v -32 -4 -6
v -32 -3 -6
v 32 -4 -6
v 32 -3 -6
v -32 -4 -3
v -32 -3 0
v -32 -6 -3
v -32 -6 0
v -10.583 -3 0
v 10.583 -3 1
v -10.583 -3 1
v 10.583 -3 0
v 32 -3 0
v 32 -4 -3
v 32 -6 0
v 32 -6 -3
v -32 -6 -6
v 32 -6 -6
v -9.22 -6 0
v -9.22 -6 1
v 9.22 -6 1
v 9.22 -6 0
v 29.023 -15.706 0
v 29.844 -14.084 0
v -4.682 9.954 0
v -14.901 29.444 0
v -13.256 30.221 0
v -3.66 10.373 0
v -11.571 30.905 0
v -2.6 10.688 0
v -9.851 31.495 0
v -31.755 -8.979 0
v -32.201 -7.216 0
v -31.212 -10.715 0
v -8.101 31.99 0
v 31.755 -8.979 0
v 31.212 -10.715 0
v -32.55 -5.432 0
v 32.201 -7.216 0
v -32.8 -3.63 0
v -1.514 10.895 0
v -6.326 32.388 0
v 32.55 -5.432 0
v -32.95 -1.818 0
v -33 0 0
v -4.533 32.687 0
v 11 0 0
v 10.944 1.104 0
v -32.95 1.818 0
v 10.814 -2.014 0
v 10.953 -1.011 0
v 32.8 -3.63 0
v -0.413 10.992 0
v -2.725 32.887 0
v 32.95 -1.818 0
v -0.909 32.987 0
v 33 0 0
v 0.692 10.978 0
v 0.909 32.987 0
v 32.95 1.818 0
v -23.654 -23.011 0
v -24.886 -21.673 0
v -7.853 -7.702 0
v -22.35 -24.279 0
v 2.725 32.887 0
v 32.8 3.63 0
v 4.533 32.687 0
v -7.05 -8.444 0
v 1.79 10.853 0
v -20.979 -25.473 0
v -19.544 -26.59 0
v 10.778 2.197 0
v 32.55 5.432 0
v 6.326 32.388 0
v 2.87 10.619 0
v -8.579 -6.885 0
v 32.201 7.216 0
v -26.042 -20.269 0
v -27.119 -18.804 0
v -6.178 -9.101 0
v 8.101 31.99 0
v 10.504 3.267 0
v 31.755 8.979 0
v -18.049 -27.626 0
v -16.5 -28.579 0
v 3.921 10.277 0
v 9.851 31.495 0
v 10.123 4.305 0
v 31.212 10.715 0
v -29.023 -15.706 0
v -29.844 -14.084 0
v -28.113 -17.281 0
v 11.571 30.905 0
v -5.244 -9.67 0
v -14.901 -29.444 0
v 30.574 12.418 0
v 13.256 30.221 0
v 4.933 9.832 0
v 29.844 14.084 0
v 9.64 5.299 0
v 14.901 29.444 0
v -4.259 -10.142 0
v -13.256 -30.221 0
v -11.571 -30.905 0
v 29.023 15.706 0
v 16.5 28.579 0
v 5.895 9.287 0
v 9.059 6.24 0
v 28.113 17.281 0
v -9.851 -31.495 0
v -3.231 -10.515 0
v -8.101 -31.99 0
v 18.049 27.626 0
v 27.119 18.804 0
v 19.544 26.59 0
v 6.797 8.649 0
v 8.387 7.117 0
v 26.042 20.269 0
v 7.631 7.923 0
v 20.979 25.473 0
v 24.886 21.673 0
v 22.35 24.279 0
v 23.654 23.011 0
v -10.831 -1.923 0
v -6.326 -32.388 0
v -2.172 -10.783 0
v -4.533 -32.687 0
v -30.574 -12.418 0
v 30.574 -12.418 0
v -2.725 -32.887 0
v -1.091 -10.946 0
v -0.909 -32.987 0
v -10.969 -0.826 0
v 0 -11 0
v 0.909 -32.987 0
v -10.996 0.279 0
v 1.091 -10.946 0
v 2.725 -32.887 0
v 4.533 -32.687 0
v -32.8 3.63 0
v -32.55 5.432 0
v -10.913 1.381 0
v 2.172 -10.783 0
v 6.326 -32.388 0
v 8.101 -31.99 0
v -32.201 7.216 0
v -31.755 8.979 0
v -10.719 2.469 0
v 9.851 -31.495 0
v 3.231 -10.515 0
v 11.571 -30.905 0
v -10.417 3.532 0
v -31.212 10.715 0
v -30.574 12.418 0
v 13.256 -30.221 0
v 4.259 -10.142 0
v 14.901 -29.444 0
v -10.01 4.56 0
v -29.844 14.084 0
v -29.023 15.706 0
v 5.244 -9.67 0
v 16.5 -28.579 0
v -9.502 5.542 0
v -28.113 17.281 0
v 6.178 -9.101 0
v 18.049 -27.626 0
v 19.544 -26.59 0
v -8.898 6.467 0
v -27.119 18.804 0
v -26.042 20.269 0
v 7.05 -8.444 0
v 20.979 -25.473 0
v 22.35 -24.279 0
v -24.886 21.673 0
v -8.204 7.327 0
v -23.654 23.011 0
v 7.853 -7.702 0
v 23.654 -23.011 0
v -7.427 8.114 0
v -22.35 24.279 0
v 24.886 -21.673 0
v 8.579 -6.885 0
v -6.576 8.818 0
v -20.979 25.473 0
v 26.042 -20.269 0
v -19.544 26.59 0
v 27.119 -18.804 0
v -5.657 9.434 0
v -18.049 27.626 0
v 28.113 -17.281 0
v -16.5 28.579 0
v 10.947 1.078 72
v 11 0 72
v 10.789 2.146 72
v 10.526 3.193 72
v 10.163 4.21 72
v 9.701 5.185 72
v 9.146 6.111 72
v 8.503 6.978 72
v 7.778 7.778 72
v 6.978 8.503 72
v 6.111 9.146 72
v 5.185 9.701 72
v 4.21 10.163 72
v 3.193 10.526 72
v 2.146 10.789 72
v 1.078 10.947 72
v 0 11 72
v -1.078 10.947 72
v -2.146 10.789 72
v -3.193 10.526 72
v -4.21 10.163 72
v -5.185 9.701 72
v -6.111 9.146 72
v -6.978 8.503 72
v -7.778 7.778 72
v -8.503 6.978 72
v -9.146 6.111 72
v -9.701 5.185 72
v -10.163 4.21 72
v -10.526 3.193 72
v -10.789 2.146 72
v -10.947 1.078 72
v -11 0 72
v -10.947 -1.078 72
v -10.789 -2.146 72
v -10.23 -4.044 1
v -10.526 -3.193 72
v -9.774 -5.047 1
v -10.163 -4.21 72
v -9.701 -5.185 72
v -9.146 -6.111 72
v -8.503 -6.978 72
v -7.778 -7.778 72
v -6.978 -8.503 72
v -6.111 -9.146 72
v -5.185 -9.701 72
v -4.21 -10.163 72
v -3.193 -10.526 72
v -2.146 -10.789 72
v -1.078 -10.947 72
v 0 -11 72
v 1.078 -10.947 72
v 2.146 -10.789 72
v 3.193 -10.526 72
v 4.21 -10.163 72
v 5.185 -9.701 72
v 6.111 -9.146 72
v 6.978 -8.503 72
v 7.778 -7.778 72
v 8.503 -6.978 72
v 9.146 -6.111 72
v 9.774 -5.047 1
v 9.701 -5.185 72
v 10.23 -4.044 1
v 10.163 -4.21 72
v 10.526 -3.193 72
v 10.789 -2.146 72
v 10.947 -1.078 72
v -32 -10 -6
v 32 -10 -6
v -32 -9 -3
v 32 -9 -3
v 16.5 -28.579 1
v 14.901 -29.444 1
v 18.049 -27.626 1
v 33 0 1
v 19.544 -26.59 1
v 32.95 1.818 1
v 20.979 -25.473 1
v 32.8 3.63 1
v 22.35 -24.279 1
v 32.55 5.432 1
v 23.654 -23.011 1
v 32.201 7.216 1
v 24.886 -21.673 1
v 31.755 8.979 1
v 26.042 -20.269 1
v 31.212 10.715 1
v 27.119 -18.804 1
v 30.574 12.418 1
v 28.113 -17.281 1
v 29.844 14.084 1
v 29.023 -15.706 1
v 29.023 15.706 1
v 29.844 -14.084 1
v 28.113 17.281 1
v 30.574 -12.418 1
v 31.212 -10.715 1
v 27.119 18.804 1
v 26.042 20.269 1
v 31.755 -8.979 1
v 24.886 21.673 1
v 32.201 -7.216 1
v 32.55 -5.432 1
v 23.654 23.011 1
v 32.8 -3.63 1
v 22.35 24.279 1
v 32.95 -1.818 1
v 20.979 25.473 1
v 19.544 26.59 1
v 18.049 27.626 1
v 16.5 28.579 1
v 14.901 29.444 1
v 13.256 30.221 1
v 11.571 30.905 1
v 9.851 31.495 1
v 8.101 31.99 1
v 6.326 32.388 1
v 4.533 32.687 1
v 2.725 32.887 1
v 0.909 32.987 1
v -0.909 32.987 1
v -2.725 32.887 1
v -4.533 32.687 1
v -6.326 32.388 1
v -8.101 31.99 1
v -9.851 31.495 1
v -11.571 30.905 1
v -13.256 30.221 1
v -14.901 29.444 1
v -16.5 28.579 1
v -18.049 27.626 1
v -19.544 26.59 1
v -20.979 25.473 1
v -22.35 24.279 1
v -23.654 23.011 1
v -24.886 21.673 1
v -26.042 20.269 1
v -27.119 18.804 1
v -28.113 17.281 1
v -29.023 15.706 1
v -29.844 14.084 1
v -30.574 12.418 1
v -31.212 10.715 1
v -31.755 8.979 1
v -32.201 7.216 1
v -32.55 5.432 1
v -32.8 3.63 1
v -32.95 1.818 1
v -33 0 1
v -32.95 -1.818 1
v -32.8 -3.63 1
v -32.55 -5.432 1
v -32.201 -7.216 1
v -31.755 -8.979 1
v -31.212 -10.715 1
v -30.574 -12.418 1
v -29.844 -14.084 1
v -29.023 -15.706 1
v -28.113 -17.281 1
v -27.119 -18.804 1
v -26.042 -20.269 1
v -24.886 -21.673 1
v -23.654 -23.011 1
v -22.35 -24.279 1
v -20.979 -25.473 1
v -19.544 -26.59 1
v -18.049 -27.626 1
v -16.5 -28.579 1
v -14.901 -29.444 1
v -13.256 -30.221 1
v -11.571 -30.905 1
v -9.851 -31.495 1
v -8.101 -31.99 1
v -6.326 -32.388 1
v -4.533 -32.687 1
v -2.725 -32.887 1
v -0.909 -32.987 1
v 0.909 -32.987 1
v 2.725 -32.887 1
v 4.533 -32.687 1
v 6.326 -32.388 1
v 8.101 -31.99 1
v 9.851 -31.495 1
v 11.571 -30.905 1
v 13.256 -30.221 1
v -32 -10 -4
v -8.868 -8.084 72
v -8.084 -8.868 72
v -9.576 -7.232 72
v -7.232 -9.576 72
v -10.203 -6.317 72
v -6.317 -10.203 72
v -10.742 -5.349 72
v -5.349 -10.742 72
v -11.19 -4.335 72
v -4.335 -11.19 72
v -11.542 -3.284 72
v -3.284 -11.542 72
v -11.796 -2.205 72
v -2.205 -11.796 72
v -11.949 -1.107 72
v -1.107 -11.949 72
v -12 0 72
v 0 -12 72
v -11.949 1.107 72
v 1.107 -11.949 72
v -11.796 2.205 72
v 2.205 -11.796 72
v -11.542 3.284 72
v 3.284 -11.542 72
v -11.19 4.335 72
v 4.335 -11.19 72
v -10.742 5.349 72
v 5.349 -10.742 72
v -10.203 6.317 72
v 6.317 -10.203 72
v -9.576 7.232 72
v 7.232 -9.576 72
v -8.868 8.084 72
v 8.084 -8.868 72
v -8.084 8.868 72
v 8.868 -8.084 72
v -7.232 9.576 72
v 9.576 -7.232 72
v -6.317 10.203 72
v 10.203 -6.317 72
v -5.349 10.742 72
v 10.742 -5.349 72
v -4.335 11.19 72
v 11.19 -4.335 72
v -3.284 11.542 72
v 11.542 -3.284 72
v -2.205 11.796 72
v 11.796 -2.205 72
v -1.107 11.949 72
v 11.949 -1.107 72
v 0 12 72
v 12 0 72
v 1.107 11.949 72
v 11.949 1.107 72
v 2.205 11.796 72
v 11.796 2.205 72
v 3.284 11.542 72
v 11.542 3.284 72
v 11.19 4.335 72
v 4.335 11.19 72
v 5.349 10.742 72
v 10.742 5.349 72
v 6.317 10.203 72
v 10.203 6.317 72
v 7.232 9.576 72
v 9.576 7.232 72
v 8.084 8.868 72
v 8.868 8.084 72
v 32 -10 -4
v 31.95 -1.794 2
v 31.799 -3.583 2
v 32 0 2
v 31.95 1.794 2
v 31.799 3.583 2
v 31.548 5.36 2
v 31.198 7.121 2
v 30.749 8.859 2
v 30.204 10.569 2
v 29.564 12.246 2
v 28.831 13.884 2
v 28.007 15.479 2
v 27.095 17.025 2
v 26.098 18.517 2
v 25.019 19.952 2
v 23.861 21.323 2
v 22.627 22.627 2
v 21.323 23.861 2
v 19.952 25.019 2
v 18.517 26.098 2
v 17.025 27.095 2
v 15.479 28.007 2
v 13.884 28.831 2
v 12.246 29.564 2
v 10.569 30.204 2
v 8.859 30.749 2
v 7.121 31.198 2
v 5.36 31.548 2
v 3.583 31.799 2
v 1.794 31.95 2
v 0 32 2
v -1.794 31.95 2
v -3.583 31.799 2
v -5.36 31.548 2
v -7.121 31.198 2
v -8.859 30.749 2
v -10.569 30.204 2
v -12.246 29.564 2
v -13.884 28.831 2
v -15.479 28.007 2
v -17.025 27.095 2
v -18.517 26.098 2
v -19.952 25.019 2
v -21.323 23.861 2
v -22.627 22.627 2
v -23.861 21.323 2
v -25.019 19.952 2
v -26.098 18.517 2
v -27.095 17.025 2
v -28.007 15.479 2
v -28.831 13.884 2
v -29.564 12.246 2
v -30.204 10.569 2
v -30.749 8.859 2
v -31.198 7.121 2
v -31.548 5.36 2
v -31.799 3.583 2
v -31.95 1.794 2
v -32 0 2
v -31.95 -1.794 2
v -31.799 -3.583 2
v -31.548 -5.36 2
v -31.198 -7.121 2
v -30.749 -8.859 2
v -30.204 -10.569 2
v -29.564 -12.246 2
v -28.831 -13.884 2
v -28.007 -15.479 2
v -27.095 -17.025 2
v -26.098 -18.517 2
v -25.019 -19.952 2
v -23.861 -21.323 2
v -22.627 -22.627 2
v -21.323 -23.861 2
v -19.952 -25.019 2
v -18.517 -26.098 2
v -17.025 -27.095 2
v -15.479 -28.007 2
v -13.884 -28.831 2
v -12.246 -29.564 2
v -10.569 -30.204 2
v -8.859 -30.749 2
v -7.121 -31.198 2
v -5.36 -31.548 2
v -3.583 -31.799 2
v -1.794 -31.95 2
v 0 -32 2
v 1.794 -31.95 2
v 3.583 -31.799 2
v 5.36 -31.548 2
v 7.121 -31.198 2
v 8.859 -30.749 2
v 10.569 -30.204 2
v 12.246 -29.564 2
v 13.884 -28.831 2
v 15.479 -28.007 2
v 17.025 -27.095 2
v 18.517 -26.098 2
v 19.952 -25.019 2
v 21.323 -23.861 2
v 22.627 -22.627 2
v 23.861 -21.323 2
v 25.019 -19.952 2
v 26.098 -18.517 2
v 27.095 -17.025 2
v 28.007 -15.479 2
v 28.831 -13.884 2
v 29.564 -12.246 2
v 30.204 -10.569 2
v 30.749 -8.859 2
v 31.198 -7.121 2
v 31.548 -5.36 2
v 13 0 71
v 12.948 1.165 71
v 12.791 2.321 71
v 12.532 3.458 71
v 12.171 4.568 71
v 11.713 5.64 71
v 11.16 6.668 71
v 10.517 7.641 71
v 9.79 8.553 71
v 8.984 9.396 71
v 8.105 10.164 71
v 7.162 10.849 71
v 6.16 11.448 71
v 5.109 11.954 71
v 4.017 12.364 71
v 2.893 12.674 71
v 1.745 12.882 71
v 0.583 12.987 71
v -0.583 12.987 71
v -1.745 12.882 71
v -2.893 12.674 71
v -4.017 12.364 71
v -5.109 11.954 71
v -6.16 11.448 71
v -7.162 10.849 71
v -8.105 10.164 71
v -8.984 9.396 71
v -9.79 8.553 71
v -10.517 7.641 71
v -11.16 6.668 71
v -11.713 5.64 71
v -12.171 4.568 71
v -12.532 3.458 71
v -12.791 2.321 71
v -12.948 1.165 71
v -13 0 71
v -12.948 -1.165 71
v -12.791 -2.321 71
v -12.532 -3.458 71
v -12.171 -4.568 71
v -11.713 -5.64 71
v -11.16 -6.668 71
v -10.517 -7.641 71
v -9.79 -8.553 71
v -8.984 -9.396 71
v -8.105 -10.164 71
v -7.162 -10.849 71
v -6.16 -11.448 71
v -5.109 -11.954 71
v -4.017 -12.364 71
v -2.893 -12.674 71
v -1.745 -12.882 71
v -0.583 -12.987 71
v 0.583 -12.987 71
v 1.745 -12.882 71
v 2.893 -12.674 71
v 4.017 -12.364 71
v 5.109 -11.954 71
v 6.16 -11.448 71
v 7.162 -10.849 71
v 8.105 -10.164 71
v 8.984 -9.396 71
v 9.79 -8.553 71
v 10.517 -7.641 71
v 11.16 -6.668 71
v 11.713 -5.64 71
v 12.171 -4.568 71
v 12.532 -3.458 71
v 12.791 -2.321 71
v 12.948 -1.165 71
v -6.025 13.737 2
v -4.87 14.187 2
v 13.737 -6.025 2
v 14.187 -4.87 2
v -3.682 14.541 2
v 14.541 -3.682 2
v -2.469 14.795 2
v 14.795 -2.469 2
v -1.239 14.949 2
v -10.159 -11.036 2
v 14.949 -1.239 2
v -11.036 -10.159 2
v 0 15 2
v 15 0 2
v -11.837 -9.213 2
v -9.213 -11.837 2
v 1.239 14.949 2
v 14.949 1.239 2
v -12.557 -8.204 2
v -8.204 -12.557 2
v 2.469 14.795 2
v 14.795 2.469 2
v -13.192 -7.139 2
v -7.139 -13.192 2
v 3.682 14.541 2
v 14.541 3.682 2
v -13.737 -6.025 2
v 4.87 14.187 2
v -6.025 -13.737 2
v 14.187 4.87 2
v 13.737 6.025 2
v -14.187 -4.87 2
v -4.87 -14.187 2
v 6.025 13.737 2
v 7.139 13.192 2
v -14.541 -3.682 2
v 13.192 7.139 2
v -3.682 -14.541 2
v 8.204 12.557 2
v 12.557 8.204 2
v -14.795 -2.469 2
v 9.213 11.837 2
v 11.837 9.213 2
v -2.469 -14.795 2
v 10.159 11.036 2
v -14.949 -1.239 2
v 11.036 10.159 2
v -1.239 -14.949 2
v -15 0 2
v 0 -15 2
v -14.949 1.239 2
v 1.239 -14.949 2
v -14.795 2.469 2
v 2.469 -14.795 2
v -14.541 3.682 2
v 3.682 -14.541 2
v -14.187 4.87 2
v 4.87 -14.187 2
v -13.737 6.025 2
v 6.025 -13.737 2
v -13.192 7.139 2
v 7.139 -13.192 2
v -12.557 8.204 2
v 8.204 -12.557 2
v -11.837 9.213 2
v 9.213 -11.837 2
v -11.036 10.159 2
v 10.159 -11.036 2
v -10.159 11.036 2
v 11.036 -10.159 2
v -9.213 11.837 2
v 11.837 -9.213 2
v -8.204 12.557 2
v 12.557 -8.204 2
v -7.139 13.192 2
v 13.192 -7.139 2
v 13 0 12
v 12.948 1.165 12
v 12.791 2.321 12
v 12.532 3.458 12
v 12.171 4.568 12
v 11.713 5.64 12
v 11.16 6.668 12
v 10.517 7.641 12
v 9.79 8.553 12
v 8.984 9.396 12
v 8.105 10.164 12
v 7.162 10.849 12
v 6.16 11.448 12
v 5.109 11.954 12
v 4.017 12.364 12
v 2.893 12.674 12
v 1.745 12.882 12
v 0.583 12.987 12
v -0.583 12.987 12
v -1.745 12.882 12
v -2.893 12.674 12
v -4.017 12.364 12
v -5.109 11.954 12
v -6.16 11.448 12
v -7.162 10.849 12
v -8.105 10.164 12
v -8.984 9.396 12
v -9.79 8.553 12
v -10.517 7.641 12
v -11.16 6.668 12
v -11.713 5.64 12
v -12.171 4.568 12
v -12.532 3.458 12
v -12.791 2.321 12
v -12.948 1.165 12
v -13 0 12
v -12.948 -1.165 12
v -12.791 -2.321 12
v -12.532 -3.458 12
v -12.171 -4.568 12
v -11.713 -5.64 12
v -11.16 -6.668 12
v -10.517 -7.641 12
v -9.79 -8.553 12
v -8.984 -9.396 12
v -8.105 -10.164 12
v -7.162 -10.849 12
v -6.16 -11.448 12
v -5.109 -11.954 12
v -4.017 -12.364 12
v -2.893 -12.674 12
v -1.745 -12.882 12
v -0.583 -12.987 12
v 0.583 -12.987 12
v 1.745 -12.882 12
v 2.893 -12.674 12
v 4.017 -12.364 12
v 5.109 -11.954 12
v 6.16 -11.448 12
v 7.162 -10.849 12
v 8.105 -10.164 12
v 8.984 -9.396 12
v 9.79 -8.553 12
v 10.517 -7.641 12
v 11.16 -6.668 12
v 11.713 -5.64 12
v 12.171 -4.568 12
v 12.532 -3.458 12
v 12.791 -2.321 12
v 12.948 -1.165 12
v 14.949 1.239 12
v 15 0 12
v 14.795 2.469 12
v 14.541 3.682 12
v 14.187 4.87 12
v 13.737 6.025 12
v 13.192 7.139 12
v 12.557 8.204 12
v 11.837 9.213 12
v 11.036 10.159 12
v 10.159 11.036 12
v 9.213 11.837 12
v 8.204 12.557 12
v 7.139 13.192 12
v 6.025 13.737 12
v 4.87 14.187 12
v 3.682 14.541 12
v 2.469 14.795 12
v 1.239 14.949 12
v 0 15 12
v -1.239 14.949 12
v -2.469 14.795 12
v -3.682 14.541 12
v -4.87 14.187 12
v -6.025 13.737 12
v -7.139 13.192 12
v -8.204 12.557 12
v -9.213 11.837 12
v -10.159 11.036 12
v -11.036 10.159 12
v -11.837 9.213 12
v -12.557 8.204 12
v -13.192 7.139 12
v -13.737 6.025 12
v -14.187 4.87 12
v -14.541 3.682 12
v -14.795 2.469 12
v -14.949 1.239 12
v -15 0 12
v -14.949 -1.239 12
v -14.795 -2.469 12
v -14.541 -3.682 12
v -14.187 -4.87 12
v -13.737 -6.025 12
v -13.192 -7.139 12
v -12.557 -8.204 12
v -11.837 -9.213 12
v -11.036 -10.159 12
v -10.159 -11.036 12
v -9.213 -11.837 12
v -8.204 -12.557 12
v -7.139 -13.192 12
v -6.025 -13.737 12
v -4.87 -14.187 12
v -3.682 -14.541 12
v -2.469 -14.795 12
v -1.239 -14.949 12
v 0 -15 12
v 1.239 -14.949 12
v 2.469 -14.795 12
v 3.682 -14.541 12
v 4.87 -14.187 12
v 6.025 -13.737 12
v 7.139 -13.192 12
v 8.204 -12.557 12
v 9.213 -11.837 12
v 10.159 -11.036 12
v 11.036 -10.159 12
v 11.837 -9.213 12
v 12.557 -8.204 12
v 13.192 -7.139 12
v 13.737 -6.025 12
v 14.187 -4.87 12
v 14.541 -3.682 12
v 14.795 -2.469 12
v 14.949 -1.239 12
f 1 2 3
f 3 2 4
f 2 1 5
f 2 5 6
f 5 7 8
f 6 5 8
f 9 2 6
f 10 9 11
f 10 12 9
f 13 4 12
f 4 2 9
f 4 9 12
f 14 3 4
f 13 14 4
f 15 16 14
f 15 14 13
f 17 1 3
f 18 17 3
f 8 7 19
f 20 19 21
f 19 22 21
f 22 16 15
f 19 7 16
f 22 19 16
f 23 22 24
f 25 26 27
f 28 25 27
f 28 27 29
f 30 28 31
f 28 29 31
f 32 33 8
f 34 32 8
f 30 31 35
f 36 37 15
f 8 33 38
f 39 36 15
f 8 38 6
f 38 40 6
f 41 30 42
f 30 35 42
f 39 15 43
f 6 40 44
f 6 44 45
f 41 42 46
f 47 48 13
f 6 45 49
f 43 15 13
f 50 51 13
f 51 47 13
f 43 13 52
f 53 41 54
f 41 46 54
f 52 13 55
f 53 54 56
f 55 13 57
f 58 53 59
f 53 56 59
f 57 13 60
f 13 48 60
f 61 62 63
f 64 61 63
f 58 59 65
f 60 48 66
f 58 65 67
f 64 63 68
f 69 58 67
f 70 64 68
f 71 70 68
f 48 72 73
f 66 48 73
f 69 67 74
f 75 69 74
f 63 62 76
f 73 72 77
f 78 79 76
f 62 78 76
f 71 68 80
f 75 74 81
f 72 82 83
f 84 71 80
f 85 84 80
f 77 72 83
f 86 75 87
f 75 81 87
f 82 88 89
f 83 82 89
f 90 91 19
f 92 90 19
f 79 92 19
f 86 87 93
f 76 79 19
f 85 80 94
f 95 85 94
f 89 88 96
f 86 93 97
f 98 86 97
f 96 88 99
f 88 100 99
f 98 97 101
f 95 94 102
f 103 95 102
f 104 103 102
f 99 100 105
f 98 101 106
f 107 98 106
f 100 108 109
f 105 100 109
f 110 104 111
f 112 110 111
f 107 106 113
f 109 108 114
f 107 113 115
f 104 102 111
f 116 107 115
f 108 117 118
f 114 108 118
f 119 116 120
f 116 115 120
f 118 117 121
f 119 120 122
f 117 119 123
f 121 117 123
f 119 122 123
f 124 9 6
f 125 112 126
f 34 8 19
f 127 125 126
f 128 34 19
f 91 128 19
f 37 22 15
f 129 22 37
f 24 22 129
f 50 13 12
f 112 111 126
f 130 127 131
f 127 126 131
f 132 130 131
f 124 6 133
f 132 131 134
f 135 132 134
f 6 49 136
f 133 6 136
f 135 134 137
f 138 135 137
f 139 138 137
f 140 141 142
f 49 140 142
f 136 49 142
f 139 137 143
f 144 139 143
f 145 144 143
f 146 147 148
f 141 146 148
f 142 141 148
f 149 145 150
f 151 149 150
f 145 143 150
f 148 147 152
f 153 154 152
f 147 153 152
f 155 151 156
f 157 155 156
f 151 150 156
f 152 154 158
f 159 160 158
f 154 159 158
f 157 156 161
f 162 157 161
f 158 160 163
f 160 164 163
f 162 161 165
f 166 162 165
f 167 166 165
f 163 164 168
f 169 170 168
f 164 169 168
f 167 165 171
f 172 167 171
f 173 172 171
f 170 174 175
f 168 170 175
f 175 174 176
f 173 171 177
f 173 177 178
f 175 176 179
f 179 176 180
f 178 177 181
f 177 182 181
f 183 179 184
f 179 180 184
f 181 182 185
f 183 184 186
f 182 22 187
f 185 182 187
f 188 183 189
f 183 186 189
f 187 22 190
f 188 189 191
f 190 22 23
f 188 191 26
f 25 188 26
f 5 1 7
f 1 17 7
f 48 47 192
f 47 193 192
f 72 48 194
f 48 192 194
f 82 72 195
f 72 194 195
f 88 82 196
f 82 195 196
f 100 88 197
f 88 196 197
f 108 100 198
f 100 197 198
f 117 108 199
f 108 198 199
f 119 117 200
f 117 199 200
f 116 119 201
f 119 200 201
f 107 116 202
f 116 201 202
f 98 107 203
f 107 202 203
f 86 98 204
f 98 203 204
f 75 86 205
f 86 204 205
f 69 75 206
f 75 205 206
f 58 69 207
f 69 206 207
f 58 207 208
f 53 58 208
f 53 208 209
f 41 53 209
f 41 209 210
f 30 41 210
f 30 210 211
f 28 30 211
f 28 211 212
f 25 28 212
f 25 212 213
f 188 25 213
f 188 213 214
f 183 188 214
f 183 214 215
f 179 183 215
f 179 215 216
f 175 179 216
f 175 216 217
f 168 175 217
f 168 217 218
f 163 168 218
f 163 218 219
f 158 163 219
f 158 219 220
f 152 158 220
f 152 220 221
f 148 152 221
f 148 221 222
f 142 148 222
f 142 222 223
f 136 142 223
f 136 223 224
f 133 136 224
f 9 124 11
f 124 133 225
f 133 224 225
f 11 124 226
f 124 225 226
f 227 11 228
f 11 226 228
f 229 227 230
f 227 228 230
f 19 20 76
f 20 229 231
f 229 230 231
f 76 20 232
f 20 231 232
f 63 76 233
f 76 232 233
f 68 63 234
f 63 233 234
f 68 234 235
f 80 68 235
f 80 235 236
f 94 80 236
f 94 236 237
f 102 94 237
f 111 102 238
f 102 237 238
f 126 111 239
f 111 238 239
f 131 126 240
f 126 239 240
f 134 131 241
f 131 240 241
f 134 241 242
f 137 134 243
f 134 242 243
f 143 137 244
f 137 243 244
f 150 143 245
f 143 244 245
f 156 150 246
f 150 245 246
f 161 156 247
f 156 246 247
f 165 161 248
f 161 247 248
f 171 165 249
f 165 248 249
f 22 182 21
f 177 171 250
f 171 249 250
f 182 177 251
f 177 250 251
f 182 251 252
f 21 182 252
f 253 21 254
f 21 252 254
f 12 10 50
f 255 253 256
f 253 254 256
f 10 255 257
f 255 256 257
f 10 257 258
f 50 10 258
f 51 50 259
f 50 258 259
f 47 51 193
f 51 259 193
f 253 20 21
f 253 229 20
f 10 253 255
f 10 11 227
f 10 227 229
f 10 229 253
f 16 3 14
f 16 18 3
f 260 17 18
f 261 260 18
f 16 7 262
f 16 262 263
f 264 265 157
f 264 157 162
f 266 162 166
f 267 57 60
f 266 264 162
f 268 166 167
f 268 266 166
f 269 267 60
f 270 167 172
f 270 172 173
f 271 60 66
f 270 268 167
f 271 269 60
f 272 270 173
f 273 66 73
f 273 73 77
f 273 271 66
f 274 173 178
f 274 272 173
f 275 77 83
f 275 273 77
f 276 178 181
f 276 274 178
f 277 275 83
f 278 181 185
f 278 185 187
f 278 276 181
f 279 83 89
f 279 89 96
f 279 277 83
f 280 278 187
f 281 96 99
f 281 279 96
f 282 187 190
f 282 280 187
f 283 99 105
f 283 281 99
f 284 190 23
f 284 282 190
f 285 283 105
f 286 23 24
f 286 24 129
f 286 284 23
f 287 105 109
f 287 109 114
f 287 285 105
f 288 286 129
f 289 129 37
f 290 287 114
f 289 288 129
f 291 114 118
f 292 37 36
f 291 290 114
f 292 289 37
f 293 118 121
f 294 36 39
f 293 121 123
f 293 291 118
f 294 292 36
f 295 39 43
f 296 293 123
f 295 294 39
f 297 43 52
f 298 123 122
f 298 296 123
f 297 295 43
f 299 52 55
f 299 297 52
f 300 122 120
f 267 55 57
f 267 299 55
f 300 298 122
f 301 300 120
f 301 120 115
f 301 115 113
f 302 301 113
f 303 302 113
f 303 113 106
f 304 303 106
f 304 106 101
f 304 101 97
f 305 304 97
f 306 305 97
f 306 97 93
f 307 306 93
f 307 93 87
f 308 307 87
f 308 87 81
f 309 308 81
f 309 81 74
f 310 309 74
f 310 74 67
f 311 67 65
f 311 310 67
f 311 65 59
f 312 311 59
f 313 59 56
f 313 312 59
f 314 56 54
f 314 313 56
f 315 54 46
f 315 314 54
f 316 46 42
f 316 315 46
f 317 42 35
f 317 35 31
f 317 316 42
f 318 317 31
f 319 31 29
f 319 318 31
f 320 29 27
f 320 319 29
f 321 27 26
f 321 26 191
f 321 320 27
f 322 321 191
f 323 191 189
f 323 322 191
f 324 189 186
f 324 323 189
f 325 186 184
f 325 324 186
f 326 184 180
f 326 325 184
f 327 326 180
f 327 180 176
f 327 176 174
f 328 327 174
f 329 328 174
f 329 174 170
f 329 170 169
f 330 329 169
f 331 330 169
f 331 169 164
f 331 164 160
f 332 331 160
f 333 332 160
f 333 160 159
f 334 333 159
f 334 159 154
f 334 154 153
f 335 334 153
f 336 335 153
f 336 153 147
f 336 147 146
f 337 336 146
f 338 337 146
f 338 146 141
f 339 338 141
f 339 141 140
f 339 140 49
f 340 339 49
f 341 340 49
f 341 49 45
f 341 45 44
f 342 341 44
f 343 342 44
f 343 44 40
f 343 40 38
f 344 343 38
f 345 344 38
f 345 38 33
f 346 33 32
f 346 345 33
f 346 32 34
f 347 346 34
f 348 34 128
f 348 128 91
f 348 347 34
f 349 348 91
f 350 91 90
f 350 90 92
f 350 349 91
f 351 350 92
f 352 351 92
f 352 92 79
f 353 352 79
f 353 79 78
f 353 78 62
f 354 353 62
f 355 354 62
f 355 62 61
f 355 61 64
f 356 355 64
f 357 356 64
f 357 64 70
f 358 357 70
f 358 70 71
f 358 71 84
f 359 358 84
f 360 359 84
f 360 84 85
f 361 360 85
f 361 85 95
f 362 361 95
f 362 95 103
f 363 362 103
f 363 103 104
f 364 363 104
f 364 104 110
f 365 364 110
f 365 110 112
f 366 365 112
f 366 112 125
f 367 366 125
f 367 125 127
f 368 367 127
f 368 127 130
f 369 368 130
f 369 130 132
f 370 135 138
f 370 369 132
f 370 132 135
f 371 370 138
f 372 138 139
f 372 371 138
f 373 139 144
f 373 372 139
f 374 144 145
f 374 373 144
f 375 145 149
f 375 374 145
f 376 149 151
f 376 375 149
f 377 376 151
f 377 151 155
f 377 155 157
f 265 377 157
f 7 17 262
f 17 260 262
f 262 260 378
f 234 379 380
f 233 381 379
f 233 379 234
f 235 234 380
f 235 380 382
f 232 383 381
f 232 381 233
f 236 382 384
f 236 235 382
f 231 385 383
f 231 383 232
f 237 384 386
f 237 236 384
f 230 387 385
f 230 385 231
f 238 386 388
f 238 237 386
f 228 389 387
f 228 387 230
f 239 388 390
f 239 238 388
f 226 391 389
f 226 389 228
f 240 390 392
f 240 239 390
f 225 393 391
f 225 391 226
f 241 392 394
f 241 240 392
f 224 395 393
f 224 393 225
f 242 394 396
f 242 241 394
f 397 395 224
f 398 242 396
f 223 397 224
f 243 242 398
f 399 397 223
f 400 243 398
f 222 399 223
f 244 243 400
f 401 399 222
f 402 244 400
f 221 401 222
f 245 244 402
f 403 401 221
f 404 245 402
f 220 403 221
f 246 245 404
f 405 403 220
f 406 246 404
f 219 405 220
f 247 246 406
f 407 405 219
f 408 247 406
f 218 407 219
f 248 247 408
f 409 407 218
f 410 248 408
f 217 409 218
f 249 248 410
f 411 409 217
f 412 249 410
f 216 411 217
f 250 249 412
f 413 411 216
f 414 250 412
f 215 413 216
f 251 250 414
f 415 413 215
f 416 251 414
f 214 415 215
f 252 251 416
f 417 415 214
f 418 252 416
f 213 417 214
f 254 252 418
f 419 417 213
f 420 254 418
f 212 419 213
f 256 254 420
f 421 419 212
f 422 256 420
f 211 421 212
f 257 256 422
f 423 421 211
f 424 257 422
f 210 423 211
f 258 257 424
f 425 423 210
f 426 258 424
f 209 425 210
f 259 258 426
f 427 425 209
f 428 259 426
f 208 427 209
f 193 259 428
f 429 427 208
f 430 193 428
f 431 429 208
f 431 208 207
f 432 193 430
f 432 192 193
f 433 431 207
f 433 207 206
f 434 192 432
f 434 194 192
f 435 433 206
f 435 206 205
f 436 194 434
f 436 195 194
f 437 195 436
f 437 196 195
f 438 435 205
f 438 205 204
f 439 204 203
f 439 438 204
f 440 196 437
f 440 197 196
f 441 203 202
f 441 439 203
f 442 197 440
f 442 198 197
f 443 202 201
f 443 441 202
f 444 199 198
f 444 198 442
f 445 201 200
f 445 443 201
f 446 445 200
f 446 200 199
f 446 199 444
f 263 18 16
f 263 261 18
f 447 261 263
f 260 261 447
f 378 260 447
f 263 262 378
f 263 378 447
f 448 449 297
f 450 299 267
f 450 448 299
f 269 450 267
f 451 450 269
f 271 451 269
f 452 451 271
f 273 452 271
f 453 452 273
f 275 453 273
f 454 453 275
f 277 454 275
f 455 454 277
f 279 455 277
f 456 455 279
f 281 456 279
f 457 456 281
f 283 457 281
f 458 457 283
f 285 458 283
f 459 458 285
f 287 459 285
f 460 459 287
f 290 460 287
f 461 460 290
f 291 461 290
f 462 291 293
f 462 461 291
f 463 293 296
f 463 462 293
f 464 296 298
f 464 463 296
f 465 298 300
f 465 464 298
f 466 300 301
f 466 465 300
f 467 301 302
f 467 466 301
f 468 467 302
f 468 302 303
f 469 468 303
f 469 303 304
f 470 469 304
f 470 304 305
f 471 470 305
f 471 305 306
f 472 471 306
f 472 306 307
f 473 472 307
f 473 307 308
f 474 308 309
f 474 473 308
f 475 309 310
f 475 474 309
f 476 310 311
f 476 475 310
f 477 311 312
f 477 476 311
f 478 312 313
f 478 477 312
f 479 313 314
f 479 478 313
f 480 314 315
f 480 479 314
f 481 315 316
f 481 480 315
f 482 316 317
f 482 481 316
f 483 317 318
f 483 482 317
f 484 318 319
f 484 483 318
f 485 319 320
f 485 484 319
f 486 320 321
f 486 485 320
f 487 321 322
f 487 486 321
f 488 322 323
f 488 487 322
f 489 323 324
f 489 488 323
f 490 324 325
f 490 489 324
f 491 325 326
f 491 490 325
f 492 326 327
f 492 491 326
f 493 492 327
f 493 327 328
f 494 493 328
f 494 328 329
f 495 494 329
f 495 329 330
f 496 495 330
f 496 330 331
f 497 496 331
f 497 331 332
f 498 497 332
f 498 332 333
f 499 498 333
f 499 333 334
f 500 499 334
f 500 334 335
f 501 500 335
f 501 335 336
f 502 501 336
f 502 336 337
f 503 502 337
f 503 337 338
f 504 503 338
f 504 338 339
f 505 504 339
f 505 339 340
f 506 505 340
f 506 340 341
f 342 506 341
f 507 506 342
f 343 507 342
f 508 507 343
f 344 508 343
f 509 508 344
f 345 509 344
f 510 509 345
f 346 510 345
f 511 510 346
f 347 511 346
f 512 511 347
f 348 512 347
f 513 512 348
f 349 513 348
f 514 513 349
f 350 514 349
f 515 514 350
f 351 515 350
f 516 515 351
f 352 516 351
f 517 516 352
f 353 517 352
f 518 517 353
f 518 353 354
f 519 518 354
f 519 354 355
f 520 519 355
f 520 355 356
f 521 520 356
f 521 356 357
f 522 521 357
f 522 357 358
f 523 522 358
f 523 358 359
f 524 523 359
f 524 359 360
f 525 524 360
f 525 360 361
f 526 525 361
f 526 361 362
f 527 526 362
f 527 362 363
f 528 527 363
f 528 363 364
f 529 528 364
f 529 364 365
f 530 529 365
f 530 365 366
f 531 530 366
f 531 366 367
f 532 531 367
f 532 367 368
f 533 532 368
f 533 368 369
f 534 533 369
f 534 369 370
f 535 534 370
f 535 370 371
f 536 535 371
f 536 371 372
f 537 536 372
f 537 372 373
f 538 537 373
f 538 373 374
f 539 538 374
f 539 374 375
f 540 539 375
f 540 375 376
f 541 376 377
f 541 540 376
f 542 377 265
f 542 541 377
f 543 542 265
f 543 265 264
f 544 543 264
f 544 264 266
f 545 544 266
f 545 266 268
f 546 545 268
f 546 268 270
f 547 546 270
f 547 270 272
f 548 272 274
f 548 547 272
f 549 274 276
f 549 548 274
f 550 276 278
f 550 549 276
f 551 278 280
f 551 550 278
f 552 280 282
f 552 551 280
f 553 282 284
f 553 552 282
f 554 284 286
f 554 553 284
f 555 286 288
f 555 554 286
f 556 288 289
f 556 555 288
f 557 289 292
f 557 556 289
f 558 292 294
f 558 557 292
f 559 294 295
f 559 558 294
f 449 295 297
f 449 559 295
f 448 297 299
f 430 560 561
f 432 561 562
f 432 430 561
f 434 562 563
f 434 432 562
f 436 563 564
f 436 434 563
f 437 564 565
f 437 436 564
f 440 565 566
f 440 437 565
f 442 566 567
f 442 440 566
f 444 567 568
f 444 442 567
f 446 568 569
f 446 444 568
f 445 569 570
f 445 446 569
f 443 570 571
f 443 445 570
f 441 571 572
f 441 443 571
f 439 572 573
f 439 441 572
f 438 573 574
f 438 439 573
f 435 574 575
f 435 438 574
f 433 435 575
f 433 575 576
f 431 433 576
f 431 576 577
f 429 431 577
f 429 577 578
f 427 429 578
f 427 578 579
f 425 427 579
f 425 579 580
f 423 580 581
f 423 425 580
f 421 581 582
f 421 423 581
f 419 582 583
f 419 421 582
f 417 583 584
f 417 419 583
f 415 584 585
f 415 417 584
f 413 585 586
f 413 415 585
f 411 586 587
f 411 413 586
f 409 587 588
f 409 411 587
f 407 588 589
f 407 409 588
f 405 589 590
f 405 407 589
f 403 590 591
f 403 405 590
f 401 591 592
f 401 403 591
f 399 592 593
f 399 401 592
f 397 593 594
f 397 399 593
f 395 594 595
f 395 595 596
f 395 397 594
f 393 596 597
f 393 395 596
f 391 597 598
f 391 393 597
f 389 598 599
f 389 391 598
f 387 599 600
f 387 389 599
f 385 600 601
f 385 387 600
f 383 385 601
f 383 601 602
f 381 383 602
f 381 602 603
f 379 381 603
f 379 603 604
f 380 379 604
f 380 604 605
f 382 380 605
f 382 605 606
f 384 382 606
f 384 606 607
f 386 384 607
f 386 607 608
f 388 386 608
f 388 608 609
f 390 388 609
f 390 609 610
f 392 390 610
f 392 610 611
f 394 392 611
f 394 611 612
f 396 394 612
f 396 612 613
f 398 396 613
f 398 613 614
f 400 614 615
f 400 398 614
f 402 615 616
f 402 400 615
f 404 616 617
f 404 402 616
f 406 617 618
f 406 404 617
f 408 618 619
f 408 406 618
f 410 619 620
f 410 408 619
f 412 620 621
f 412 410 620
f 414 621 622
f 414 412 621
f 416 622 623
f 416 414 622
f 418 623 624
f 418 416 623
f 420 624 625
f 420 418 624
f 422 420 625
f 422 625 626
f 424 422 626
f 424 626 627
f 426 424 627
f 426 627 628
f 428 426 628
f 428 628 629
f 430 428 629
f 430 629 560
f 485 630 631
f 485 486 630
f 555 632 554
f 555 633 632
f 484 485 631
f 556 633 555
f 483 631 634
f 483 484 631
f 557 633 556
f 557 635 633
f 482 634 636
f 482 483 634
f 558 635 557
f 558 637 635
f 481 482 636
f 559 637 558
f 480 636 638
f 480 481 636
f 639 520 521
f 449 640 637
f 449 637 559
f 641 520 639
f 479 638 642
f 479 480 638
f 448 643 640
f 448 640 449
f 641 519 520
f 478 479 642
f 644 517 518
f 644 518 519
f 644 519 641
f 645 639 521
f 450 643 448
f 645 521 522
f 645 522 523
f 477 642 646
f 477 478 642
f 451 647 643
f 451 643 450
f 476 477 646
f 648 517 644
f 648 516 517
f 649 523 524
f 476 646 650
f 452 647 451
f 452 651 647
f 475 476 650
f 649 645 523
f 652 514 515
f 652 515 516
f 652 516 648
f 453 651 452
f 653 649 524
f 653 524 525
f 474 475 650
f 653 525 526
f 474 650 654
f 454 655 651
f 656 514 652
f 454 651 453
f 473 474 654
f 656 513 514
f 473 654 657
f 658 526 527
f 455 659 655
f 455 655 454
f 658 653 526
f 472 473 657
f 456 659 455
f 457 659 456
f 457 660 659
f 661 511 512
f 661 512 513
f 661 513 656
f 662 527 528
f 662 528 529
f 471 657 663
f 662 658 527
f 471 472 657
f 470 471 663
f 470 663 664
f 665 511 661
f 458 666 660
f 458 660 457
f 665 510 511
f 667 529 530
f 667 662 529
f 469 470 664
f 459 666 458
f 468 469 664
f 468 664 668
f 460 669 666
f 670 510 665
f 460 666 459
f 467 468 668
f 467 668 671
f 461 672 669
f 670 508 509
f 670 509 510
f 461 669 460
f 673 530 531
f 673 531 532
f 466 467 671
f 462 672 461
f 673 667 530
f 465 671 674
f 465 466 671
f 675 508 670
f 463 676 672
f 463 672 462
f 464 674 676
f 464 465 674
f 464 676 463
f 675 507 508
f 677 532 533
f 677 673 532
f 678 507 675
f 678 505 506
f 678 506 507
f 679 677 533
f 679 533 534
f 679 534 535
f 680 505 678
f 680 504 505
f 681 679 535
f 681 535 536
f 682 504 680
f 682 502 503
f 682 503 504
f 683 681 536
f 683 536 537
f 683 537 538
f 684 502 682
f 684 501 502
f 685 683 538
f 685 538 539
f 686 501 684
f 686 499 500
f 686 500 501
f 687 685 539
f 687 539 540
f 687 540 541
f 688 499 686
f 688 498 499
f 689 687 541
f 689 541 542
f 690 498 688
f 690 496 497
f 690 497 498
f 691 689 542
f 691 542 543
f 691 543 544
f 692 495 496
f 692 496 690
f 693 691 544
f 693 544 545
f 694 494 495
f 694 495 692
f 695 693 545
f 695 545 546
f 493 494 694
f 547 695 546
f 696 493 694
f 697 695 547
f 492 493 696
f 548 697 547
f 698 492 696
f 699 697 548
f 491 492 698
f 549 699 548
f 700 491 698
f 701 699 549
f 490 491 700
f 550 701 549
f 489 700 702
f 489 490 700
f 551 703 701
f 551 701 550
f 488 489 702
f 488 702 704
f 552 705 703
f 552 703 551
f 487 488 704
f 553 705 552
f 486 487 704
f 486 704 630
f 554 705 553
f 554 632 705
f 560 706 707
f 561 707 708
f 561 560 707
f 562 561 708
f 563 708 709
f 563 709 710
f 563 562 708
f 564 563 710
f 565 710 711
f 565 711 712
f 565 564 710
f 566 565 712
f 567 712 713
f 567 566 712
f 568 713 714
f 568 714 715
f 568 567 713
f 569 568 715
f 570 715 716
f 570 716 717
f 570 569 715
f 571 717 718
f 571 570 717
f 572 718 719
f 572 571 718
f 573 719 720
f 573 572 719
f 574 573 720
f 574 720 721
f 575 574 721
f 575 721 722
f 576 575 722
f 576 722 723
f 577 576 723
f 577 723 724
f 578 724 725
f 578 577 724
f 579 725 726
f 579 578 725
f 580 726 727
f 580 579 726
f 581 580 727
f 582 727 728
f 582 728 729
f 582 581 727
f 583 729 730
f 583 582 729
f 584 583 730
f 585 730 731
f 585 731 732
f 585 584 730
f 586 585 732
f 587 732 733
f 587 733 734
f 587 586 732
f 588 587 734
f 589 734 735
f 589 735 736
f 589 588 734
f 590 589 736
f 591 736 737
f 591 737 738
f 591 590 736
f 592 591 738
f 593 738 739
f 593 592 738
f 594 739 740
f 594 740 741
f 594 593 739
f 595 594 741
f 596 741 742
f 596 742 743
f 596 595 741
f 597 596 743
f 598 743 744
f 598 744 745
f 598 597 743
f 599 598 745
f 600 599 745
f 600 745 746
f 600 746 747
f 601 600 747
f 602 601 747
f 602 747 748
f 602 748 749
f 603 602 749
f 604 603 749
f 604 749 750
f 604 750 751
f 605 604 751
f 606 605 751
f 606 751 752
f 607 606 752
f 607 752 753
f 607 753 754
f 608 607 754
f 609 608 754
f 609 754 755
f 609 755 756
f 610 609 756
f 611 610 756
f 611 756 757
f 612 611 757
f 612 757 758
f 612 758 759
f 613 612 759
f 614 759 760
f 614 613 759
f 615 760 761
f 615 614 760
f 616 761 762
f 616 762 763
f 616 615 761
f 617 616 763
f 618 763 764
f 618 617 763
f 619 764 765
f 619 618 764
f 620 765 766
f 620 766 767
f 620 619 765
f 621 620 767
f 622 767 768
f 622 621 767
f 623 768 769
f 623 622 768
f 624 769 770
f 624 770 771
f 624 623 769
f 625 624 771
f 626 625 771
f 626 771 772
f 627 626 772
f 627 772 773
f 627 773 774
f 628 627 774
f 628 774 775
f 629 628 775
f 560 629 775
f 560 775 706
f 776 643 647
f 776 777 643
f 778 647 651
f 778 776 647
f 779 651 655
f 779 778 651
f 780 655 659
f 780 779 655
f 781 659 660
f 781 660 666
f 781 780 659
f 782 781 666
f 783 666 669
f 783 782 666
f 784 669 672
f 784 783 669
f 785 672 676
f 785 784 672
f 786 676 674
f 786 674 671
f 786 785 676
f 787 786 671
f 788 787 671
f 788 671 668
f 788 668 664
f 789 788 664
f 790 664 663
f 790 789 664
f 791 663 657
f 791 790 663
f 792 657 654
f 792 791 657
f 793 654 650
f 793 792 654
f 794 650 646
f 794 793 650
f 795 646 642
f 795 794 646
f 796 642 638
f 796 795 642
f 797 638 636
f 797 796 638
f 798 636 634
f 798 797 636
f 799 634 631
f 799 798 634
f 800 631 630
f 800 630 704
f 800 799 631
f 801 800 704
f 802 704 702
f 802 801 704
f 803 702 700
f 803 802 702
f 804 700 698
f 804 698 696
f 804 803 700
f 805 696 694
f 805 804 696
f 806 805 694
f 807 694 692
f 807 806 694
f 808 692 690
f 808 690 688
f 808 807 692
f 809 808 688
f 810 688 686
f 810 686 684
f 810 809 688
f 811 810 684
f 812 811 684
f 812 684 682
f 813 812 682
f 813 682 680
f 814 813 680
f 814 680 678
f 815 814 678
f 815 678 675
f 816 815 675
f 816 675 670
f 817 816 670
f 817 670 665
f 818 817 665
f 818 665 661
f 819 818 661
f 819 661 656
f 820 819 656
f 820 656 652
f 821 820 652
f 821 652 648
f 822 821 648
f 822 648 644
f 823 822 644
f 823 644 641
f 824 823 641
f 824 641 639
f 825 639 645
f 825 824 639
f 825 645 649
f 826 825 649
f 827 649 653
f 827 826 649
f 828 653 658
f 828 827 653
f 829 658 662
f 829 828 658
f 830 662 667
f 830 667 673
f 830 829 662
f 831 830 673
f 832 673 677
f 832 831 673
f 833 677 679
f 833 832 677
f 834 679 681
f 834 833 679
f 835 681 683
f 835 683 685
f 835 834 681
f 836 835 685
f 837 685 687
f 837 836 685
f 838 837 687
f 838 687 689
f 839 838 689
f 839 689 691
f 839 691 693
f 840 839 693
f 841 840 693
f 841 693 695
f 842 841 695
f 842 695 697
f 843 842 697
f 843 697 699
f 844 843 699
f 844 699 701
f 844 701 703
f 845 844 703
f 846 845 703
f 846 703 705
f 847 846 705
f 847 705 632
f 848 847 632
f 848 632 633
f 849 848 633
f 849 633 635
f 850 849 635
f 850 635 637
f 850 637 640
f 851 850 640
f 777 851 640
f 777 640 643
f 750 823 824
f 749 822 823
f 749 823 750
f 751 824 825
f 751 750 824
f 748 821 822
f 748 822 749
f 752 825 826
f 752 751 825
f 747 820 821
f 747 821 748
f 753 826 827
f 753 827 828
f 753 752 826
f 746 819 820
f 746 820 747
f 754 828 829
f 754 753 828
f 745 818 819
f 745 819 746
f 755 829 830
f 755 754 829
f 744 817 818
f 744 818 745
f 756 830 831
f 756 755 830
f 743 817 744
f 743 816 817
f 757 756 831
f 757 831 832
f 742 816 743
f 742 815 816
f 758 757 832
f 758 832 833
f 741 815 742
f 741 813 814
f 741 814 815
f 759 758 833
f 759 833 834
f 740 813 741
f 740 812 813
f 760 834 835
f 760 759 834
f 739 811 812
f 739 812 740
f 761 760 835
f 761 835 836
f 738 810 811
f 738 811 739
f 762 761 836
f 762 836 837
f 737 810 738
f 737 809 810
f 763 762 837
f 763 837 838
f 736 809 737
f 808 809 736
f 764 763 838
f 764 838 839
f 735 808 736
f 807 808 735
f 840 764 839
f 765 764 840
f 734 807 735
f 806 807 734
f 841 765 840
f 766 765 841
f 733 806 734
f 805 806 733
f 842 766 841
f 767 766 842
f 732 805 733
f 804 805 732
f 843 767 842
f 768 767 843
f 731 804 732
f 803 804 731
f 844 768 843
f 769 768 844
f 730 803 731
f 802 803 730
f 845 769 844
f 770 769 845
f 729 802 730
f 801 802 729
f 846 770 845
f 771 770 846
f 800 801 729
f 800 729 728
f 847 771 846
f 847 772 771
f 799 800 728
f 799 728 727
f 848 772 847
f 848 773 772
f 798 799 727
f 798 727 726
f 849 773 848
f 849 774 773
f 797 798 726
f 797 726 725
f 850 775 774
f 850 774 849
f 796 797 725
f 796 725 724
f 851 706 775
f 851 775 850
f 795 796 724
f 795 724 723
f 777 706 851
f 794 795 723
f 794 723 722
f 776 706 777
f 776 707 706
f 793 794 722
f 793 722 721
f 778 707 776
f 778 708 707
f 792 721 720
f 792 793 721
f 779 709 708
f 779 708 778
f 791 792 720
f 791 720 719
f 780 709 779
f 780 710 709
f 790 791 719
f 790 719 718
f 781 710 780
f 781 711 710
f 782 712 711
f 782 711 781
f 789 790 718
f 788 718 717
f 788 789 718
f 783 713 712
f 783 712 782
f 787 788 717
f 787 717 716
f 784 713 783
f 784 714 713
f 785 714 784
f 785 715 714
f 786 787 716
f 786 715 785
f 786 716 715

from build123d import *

# Parameters (mm, degrees)
CYLINDER003_R     = 11
CYLINDER003_DEPTH = 80
CYLINDER002_R     = 13
CYLINDER002_DEPTH = 67
CHAMFER001_SIZE   = 1
CYLINDER001_R     = 15
CYLINDER001_DEPTH = 11
CYLINDER_R        = 33
CYLINDER_DEPTH    = 2
CHAMFER002_SIZE   = 1
BOX_W             = 64
BOX_H             = 3
BOX_DEPTH         = 7
BOX001_W          = 64
BOX001_H          = 6
BOX001_DEPTH      = 3
CHAMFER_SIZE      = 1


with BuildPart() as cylinder003:
    # Cylinder003 → Cylinder003 (new body)
    with BuildSketch(Plane.XY.offset(-1)):
        Circle(CYLINDER003_R)
    extrude(amount=CYLINDER003_DEPTH)


with BuildPart() as chamfer001:
    # Cylinder002 → Cylinder002 (new body)
    with BuildSketch(Plane.XY.offset(10)):
        Circle(CYLINDER002_R)
    extrude(amount=CYLINDER002_DEPTH)

    # Chamfer001
    chamfer001_edges = [chamfer001.edges().sort_by_distance(p)[0] for p in [
        (-13, 0, 77),
    ]]
    chamfer(chamfer001_edges, length=CHAMFER001_SIZE)


with BuildPart() as chamfer001_1:
    # Chamfer001 placement: moved
    add(chamfer001.part.moved(Location((0, 0, -5))))


with BuildPart() as cylinder001:
    # Cylinder001 → Cylinder001 (new body)
    with BuildSketch(Plane.XY.offset(1)):
        Circle(CYLINDER001_R)
    extrude(amount=CYLINDER001_DEPTH)


with BuildPart() as chamfer002:
    # Cylinder → Cylinder (new body)
    with BuildSketch(Plane.XY):
        Circle(CYLINDER_R)
    extrude(amount=CYLINDER_DEPTH)

    # Fusion: union Cylinder001
    add(cylinder001.part)

    # Fusion001: union Chamfer001
    add(chamfer001_1.part)

    # Cut: cut Cylinder003
    add(cylinder003.part, mode=Mode.SUBTRACT)

    # Chamfer002
    chamfer002_edges = [chamfer002.edges().sort_by_distance(p)[0] for p in [
        (-33, 0, 2),
    ]]
    chamfer(chamfer002_edges, length=CHAMFER002_SIZE)


with BuildPart() as cube:
    # Box → Box (new body)
    with BuildSketch(Plane(origin=(-32, 0, -6), x_dir=(1, 0, 0), z_dir=(0, 0, 1))):
        with Locations((32, 1.5)):
            Rectangle(BOX_W, BOX_H)
    extrude(amount=BOX_DEPTH)


with BuildPart() as fusion003:
    # Box001 → Box001 (new body)
    with BuildSketch(Plane(origin=(-32, -4, -6), x_dir=(1, 0, 0), z_dir=(0, 0, 1))):
        with Locations((32, 3)):
            Rectangle(BOX001_W, BOX001_H)
    extrude(amount=BOX001_DEPTH)

    # Chamfer
    chamfer_edges = [fusion003.edges().sort_by_distance(p)[0] for p in [
        (0, -4, -3),
    ]]
    chamfer(chamfer_edges, length=CHAMFER_SIZE)

    # Fusion002: union Cube
    add(cube.part)


with BuildPart() as fusion003_1:
    # Fusion002 placement: moved
    add(fusion003.part.moved(Location((0, -6, 0))))

    # Fusion003: union Chamfer002
    add(chamfer002.part)


solid = fusion003_1.part
